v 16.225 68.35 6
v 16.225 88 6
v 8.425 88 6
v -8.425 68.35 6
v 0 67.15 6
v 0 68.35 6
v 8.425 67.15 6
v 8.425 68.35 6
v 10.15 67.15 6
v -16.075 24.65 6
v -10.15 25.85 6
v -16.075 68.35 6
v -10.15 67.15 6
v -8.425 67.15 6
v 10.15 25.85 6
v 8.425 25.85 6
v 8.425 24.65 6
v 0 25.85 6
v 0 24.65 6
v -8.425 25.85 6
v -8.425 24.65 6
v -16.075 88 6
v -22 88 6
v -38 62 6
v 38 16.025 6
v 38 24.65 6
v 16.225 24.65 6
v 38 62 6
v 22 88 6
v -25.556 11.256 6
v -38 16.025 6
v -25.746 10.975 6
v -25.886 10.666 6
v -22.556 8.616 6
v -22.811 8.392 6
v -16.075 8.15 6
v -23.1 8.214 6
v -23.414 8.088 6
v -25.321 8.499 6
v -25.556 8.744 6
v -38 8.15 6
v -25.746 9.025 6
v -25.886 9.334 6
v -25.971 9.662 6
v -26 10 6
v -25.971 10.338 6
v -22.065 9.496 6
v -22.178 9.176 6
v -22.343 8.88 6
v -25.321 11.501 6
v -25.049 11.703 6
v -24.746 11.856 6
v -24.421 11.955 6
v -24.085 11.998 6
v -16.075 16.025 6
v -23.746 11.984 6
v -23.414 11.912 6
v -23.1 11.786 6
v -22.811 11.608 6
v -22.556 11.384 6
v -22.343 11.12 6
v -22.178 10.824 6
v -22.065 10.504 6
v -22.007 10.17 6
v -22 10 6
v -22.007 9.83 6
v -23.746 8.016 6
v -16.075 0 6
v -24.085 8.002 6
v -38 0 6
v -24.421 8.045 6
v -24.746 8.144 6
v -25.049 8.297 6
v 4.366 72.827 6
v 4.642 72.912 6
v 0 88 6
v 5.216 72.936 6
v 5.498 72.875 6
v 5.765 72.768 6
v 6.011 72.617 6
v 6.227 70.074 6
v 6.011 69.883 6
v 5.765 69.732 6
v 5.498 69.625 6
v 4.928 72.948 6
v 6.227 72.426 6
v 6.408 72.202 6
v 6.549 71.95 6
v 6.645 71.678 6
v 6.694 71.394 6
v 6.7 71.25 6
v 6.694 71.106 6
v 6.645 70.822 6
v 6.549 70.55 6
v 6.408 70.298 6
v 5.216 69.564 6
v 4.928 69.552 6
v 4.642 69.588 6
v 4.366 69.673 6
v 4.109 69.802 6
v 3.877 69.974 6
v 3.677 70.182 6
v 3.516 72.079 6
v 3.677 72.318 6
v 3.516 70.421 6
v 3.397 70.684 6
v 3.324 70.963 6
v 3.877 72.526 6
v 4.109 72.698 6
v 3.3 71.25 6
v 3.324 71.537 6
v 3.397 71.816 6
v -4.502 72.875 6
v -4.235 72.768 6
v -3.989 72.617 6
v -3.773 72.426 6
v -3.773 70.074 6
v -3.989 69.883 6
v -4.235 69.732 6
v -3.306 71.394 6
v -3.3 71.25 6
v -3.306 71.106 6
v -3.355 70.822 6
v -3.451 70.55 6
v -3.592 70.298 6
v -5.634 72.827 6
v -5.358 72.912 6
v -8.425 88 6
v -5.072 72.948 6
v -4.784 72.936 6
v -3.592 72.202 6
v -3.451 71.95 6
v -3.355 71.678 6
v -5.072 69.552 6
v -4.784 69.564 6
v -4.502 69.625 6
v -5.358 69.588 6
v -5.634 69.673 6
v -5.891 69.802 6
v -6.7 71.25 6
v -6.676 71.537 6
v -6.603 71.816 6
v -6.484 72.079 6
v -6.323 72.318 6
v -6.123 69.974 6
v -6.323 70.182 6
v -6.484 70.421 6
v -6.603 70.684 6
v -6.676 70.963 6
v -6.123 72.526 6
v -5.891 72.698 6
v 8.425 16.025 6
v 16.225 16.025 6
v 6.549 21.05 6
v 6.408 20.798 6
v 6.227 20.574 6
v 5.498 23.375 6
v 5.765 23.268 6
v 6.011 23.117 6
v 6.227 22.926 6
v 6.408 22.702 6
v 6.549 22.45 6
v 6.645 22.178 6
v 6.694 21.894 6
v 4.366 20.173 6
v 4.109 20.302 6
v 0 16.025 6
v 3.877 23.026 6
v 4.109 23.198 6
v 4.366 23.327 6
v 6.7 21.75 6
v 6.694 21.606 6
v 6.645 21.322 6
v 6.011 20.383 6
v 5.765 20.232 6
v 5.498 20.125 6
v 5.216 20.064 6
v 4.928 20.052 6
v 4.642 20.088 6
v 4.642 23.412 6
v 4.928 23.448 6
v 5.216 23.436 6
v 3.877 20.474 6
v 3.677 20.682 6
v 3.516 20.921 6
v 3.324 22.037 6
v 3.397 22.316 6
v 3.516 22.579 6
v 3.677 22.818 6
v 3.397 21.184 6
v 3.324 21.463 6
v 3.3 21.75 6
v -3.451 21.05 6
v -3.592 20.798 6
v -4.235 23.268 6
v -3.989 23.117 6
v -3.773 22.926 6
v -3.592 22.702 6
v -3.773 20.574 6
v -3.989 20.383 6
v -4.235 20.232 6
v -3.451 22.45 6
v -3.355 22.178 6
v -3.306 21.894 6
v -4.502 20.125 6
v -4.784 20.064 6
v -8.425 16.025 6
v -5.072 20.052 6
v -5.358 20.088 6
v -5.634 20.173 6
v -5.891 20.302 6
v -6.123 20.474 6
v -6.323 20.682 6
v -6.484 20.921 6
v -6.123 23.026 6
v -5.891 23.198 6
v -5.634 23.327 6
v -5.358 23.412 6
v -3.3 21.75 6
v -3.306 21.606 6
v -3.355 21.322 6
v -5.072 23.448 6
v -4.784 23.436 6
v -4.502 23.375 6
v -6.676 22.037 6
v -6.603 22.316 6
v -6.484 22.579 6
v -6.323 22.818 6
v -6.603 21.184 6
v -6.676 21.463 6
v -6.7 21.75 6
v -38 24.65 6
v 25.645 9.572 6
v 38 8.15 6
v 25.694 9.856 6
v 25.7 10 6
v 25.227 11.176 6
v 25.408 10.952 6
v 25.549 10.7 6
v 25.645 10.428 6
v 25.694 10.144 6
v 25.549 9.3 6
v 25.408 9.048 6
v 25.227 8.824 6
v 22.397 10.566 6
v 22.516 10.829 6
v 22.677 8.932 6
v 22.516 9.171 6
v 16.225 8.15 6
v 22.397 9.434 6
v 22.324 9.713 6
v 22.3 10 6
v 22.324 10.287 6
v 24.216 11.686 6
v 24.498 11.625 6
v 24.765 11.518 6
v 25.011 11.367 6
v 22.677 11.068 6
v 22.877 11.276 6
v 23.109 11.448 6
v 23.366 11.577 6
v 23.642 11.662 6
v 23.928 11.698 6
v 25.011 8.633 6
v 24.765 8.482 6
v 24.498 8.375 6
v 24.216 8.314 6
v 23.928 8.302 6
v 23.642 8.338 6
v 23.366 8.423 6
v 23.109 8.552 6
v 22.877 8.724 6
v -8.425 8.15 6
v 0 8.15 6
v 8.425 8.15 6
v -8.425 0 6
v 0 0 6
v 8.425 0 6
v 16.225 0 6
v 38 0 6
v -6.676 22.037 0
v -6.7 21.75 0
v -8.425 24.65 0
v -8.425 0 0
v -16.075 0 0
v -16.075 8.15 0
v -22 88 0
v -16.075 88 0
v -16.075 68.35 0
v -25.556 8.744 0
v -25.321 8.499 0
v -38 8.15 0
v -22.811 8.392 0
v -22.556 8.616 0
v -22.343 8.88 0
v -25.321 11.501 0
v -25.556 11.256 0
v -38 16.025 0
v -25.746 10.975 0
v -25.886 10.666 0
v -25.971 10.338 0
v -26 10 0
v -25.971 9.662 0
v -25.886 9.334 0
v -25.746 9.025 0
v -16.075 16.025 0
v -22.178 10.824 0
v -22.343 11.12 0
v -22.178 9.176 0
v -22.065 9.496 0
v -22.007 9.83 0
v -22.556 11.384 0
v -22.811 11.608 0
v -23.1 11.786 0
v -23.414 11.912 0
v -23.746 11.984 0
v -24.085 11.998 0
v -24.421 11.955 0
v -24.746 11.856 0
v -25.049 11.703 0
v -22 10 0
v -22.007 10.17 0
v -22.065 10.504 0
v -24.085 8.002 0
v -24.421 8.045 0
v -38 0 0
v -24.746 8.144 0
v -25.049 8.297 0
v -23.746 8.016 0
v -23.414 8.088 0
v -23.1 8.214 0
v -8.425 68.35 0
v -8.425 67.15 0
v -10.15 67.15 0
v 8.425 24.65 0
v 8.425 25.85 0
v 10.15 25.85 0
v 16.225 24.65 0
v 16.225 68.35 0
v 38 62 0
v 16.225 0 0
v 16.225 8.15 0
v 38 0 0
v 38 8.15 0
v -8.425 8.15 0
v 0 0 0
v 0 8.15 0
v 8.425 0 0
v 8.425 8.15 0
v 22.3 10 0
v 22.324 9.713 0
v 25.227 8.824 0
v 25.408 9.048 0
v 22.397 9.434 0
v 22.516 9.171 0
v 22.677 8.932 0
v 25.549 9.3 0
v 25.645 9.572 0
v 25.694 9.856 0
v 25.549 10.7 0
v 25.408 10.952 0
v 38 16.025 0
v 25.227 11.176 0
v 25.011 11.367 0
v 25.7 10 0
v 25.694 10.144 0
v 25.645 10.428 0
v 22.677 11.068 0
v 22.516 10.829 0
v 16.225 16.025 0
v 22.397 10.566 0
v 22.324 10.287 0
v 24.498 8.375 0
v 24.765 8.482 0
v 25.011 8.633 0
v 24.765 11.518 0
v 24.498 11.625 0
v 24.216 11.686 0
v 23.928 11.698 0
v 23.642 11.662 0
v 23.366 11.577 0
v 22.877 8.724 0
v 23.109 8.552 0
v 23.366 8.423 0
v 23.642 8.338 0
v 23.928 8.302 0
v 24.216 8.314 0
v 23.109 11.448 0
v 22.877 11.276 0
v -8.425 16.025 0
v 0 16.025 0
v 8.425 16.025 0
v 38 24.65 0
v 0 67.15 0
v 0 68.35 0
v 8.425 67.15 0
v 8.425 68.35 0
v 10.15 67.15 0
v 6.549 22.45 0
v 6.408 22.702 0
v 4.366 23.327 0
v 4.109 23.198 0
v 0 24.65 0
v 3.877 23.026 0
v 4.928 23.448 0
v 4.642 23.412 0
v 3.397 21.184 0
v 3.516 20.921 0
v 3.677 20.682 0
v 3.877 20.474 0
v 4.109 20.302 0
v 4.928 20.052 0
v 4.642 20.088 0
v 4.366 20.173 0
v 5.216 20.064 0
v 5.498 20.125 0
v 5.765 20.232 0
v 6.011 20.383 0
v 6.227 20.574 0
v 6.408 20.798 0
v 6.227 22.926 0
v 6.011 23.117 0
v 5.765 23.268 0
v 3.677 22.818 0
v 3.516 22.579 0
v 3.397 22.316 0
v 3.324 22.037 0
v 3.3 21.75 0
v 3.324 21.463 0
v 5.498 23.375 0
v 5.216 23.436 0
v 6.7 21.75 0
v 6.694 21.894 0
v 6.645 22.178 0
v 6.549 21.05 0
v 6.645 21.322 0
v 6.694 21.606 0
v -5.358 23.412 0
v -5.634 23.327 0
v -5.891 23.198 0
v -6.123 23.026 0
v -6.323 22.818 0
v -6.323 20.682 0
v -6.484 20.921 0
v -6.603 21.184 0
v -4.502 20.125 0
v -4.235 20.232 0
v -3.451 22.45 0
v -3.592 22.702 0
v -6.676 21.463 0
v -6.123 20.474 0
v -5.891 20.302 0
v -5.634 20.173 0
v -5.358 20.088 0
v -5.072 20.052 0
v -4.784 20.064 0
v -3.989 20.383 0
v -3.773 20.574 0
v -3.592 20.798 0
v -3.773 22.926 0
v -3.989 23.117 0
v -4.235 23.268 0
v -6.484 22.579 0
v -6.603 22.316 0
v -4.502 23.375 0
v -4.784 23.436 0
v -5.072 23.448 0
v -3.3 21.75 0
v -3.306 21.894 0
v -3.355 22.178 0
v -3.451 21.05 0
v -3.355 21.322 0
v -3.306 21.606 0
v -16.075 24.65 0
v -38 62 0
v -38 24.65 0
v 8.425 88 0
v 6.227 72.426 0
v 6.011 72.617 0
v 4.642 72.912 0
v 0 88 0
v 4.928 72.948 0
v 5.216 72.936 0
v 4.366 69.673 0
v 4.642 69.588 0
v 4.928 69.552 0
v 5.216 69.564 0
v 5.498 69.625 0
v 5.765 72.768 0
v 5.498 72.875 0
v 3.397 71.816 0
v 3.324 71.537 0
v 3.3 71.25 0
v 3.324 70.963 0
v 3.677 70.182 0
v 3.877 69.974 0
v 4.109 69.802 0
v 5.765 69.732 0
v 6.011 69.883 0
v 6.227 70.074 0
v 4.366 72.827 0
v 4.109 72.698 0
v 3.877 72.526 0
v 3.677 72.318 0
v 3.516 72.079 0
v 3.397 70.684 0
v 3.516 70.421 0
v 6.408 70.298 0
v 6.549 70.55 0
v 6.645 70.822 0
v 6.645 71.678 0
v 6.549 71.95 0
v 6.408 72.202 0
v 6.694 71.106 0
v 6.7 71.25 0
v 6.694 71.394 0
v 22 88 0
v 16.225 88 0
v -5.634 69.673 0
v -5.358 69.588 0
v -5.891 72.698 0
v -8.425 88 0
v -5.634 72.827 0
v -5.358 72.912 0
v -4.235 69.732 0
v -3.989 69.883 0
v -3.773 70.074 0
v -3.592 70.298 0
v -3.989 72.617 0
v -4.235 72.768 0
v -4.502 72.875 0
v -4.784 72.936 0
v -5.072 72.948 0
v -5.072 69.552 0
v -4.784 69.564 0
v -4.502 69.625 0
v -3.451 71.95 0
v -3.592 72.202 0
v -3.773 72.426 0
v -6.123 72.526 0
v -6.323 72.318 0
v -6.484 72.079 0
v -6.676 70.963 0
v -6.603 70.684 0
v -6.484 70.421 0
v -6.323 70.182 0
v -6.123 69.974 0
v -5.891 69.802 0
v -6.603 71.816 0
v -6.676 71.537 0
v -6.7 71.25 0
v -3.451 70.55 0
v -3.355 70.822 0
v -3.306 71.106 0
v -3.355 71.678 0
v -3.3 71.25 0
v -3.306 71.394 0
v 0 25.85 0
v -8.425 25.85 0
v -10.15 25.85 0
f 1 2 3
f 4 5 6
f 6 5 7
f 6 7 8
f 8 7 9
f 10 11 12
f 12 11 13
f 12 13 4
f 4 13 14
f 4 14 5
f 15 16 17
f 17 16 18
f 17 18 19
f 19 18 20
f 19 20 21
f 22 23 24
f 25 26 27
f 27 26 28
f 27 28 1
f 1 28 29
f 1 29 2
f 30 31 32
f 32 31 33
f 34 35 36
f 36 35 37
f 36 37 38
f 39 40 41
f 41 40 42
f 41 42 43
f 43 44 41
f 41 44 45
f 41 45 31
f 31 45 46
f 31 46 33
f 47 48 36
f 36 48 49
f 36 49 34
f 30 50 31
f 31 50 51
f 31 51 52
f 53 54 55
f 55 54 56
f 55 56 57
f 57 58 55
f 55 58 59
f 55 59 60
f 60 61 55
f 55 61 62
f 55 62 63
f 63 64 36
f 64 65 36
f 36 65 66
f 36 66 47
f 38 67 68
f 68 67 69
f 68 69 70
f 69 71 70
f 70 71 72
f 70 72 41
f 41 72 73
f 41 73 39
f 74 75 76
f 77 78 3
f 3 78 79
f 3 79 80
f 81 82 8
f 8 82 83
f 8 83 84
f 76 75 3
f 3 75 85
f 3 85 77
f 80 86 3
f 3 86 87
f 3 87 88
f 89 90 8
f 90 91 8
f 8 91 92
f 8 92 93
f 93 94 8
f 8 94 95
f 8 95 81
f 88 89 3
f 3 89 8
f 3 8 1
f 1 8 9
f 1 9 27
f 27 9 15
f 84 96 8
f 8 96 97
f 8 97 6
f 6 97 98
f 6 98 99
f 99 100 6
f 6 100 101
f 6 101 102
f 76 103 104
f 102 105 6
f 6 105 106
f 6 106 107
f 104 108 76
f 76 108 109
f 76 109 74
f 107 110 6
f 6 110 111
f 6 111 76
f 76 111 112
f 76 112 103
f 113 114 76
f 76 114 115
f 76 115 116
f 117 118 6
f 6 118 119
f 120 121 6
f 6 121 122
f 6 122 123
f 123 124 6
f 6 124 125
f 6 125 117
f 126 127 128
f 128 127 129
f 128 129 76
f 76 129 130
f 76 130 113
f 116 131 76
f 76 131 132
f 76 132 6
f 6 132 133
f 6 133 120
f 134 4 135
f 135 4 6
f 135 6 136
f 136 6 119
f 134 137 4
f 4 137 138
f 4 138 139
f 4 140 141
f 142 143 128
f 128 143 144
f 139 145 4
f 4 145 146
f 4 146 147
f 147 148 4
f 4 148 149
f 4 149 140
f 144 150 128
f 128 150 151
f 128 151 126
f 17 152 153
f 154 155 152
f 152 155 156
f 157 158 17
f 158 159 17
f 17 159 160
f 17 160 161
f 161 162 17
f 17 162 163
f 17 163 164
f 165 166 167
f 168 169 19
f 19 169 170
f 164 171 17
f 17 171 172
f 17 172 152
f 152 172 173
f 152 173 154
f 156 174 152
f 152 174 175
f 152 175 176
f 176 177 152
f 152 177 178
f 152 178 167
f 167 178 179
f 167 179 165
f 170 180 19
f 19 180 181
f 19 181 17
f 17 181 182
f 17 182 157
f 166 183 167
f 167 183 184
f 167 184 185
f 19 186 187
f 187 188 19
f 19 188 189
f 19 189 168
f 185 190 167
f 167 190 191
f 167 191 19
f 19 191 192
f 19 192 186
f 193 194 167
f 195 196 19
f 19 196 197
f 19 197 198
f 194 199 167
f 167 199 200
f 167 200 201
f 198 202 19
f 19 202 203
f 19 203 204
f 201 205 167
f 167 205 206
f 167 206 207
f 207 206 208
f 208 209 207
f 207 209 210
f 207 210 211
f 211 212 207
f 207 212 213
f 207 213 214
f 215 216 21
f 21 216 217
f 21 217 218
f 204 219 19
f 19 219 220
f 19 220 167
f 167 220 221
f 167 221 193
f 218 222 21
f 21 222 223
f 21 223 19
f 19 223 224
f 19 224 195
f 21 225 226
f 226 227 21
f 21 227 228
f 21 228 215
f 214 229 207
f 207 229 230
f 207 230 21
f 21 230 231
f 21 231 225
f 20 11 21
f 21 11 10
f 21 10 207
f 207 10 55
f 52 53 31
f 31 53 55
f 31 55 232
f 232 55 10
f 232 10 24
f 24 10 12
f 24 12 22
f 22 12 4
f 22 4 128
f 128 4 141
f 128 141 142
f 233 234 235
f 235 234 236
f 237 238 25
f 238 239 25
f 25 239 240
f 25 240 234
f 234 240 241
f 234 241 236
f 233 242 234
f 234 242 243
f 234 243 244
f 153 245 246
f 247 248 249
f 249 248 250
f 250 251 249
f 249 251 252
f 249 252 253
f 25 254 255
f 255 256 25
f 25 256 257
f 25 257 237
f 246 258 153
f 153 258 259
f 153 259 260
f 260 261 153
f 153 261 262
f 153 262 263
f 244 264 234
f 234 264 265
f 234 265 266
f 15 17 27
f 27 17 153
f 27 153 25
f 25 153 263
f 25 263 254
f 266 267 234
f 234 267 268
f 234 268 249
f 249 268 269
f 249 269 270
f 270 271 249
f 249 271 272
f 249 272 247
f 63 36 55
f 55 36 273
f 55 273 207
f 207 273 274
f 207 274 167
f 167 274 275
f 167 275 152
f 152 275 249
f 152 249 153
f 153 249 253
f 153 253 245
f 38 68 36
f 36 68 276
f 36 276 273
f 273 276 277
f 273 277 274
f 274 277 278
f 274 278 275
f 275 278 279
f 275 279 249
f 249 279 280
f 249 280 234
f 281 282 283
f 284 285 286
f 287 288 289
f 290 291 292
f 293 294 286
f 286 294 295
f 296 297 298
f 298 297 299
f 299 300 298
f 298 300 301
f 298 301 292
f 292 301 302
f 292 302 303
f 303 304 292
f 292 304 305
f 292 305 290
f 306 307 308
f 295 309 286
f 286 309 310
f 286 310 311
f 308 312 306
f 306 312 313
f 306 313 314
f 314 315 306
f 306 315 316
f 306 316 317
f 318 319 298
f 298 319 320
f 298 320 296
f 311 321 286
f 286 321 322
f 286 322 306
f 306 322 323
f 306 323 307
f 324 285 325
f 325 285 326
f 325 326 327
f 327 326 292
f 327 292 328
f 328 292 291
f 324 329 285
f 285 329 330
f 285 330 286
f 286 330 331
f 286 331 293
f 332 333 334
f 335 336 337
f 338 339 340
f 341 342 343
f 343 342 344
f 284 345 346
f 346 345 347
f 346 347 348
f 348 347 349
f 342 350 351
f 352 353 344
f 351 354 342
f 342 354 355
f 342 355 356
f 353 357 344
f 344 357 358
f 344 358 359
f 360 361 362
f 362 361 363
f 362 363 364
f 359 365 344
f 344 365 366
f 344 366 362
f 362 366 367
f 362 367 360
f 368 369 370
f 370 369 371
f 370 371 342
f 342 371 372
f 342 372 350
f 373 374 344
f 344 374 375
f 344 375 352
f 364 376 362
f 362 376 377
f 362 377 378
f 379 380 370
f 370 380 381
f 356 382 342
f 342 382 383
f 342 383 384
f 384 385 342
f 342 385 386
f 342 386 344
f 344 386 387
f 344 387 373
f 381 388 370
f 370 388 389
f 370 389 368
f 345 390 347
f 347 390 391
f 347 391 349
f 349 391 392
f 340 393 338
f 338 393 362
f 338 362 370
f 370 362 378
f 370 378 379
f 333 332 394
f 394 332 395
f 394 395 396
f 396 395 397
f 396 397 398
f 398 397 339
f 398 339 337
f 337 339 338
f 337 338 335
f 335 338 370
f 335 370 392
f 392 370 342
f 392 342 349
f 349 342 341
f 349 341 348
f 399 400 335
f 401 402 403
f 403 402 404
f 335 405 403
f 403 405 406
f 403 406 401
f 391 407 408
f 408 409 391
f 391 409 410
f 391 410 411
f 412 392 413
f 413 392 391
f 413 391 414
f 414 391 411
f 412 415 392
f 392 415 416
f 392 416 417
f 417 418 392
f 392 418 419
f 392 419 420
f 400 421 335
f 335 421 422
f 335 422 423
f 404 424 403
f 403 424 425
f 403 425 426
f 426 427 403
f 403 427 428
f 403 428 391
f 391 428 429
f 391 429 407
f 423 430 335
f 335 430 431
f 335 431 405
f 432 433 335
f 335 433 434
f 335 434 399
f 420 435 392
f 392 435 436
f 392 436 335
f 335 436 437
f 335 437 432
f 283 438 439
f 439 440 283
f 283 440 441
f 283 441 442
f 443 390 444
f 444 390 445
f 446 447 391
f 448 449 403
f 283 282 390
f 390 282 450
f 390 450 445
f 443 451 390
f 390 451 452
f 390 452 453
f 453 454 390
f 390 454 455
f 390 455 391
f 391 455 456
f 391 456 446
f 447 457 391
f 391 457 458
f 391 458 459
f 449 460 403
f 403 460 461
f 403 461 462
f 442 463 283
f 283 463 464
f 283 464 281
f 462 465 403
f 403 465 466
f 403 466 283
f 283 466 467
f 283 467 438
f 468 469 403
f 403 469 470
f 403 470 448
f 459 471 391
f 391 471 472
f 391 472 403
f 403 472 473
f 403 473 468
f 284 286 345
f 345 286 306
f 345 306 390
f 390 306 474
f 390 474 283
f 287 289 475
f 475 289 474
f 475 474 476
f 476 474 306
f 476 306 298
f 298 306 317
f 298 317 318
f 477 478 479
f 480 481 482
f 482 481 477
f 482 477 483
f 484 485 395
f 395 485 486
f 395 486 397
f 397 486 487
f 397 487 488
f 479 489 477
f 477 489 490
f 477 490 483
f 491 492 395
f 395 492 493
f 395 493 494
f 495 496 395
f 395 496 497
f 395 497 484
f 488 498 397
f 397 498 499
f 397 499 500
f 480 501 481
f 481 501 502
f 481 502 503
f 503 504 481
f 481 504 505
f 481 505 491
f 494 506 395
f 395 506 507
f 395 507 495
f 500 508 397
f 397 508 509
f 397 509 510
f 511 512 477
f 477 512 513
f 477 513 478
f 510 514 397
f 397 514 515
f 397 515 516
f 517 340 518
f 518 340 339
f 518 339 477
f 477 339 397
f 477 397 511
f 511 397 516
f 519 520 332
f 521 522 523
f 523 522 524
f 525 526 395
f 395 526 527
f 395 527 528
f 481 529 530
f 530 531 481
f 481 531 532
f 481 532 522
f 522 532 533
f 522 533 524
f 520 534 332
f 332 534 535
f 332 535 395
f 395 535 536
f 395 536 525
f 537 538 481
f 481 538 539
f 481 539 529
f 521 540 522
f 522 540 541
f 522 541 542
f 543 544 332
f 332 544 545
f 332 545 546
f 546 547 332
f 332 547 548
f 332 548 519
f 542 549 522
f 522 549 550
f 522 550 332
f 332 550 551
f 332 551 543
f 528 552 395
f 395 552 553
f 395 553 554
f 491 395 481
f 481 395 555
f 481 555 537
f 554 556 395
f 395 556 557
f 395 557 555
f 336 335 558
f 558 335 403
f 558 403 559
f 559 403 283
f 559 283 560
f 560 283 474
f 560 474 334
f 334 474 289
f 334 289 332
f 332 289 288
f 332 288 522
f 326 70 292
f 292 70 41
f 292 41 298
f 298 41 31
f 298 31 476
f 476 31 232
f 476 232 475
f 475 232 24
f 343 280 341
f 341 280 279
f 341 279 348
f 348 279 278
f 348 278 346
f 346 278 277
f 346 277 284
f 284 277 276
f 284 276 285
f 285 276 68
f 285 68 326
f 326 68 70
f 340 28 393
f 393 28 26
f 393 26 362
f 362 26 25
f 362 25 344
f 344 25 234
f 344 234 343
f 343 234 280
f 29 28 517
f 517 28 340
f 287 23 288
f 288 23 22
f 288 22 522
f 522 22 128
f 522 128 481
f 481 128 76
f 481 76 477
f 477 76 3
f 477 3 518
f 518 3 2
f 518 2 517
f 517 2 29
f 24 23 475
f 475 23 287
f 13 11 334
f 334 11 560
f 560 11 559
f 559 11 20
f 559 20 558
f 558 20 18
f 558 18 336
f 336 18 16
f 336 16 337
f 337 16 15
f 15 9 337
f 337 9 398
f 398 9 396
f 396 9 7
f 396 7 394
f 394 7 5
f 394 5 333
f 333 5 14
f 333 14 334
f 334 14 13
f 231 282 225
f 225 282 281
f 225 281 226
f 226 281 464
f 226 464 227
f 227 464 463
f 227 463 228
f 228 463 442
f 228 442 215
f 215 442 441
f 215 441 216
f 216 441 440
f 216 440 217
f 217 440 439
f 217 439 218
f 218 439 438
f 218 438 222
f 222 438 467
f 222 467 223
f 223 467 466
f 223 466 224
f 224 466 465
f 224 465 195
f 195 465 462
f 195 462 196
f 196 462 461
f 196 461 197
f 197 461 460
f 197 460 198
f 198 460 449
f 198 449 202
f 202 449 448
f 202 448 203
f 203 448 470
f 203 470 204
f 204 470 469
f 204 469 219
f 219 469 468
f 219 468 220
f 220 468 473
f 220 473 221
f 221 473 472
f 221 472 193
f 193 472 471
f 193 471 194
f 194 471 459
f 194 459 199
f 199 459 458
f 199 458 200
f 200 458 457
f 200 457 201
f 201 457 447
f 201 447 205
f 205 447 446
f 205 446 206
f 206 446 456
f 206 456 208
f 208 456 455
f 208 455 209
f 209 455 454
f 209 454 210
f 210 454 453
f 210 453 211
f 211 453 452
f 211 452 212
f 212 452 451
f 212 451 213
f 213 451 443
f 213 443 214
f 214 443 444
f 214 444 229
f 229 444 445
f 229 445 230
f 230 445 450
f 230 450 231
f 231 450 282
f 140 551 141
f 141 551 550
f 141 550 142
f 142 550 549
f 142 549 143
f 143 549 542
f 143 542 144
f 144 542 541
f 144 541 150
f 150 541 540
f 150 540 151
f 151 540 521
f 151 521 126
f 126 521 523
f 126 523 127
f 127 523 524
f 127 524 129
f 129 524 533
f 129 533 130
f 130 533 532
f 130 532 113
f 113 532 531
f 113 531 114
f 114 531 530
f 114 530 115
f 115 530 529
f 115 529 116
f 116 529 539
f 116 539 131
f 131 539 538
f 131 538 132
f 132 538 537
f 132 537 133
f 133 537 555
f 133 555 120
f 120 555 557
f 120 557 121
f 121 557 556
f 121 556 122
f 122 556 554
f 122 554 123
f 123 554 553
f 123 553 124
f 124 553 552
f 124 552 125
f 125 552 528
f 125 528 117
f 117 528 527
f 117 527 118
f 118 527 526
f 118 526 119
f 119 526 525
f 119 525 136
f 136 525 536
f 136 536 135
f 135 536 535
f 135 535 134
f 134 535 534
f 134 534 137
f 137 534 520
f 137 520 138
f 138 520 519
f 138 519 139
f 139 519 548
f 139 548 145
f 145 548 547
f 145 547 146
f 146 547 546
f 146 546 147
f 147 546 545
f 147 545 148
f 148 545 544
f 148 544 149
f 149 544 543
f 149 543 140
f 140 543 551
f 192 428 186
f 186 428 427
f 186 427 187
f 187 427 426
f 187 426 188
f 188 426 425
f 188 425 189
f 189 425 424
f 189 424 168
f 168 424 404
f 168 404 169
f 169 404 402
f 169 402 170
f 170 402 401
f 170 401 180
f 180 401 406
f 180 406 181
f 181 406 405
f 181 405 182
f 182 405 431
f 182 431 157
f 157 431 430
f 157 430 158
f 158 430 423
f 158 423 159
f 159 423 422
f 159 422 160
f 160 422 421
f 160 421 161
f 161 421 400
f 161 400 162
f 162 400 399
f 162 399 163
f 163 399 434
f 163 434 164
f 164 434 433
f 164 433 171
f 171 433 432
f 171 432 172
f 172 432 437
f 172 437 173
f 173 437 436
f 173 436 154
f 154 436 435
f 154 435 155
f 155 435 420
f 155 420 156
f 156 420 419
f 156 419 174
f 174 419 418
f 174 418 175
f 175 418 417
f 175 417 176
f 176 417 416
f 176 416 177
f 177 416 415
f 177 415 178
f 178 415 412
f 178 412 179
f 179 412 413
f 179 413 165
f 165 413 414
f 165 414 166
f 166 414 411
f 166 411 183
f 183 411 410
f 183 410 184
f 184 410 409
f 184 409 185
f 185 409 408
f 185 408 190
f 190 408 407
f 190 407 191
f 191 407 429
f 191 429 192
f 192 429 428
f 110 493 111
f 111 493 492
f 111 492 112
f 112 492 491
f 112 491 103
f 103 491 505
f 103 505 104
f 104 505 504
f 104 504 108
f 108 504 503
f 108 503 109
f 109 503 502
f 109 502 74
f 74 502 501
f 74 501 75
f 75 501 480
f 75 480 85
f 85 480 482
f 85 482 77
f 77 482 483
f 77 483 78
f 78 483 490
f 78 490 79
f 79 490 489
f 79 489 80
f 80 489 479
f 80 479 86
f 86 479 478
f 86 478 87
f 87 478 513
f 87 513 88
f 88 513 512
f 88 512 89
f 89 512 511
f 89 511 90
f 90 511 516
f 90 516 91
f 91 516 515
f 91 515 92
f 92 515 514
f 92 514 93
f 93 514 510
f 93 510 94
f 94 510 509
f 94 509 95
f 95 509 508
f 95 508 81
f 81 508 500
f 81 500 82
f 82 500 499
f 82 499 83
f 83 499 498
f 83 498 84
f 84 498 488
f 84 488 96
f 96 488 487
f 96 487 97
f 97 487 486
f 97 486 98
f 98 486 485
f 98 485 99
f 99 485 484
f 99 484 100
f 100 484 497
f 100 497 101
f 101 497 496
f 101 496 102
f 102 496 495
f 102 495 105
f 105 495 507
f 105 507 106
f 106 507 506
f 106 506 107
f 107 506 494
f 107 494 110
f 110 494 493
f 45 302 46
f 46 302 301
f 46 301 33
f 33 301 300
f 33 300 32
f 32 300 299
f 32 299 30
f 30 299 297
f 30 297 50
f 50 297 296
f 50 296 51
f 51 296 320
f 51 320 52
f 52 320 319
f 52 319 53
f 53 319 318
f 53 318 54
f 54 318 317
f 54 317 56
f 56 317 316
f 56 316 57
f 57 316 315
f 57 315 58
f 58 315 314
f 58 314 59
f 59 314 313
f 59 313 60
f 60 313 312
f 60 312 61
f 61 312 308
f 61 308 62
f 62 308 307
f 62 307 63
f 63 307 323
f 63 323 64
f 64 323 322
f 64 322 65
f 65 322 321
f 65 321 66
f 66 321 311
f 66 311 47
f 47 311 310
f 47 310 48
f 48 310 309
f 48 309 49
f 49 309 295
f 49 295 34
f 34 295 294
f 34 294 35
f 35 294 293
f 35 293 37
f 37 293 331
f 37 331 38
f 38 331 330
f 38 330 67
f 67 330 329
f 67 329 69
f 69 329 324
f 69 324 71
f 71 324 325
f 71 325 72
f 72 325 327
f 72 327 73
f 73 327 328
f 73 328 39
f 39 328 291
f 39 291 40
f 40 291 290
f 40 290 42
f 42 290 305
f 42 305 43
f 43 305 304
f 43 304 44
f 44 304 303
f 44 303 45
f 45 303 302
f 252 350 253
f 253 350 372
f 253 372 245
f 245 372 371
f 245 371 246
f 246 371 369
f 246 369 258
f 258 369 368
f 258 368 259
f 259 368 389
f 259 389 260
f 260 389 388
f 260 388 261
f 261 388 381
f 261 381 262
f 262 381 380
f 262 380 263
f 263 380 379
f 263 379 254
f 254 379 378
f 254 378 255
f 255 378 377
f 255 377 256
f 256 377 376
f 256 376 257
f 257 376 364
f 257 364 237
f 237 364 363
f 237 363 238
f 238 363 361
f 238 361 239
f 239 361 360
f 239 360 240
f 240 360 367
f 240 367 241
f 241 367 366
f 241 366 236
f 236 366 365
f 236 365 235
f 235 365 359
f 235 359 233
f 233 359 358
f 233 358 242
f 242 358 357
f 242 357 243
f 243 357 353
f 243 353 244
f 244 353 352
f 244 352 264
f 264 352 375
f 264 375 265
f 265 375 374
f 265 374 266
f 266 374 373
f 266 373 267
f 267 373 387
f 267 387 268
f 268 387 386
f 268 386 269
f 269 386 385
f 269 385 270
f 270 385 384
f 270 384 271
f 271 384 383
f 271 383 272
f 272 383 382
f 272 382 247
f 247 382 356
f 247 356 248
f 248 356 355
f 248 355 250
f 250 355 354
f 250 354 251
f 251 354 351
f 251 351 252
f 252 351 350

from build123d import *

# Parameters (mm, degrees)
SKETCH_1_R                  = 1.7
SKETCH_1_R_2                = 2
SKETCH_1_W                  = 20.3
SKETCH_1_H                  = 41.3
F_07_TILT_DRIVE_CHEEK_DEPTH = 6


with BuildPart() as part:
    # Эскиз1 → 07_Tilt_drive_cheek (new body)
    with BuildSketch(Plane.XY):
        Polygon((-38, 0), (38, 0), (38, 62), (22, 88), (-22, 88), (-38, 62), align=None)
        with Locations((-5, 21.75)):
            Circle(SKETCH_1_R, mode=Mode.SUBTRACT)
        with Locations((-5, 71.25)):
            Circle(SKETCH_1_R, mode=Mode.SUBTRACT)
        with Locations((5, 21.75)):
            Circle(SKETCH_1_R, mode=Mode.SUBTRACT)
        with Locations((5, 71.25)):
            Circle(SKETCH_1_R, mode=Mode.SUBTRACT)
        with Locations((-24, 10)):
            Circle(SKETCH_1_R_2, mode=Mode.SUBTRACT)
        with Locations((24, 10)):
            Circle(SKETCH_1_R, mode=Mode.SUBTRACT)
        with Locations((0, 46.5)):
            Rectangle(SKETCH_1_W, SKETCH_1_H, mode=Mode.SUBTRACT)
    extrude(amount=F_07_TILT_DRIVE_CHEEK_DEPTH)


solid = part.part
